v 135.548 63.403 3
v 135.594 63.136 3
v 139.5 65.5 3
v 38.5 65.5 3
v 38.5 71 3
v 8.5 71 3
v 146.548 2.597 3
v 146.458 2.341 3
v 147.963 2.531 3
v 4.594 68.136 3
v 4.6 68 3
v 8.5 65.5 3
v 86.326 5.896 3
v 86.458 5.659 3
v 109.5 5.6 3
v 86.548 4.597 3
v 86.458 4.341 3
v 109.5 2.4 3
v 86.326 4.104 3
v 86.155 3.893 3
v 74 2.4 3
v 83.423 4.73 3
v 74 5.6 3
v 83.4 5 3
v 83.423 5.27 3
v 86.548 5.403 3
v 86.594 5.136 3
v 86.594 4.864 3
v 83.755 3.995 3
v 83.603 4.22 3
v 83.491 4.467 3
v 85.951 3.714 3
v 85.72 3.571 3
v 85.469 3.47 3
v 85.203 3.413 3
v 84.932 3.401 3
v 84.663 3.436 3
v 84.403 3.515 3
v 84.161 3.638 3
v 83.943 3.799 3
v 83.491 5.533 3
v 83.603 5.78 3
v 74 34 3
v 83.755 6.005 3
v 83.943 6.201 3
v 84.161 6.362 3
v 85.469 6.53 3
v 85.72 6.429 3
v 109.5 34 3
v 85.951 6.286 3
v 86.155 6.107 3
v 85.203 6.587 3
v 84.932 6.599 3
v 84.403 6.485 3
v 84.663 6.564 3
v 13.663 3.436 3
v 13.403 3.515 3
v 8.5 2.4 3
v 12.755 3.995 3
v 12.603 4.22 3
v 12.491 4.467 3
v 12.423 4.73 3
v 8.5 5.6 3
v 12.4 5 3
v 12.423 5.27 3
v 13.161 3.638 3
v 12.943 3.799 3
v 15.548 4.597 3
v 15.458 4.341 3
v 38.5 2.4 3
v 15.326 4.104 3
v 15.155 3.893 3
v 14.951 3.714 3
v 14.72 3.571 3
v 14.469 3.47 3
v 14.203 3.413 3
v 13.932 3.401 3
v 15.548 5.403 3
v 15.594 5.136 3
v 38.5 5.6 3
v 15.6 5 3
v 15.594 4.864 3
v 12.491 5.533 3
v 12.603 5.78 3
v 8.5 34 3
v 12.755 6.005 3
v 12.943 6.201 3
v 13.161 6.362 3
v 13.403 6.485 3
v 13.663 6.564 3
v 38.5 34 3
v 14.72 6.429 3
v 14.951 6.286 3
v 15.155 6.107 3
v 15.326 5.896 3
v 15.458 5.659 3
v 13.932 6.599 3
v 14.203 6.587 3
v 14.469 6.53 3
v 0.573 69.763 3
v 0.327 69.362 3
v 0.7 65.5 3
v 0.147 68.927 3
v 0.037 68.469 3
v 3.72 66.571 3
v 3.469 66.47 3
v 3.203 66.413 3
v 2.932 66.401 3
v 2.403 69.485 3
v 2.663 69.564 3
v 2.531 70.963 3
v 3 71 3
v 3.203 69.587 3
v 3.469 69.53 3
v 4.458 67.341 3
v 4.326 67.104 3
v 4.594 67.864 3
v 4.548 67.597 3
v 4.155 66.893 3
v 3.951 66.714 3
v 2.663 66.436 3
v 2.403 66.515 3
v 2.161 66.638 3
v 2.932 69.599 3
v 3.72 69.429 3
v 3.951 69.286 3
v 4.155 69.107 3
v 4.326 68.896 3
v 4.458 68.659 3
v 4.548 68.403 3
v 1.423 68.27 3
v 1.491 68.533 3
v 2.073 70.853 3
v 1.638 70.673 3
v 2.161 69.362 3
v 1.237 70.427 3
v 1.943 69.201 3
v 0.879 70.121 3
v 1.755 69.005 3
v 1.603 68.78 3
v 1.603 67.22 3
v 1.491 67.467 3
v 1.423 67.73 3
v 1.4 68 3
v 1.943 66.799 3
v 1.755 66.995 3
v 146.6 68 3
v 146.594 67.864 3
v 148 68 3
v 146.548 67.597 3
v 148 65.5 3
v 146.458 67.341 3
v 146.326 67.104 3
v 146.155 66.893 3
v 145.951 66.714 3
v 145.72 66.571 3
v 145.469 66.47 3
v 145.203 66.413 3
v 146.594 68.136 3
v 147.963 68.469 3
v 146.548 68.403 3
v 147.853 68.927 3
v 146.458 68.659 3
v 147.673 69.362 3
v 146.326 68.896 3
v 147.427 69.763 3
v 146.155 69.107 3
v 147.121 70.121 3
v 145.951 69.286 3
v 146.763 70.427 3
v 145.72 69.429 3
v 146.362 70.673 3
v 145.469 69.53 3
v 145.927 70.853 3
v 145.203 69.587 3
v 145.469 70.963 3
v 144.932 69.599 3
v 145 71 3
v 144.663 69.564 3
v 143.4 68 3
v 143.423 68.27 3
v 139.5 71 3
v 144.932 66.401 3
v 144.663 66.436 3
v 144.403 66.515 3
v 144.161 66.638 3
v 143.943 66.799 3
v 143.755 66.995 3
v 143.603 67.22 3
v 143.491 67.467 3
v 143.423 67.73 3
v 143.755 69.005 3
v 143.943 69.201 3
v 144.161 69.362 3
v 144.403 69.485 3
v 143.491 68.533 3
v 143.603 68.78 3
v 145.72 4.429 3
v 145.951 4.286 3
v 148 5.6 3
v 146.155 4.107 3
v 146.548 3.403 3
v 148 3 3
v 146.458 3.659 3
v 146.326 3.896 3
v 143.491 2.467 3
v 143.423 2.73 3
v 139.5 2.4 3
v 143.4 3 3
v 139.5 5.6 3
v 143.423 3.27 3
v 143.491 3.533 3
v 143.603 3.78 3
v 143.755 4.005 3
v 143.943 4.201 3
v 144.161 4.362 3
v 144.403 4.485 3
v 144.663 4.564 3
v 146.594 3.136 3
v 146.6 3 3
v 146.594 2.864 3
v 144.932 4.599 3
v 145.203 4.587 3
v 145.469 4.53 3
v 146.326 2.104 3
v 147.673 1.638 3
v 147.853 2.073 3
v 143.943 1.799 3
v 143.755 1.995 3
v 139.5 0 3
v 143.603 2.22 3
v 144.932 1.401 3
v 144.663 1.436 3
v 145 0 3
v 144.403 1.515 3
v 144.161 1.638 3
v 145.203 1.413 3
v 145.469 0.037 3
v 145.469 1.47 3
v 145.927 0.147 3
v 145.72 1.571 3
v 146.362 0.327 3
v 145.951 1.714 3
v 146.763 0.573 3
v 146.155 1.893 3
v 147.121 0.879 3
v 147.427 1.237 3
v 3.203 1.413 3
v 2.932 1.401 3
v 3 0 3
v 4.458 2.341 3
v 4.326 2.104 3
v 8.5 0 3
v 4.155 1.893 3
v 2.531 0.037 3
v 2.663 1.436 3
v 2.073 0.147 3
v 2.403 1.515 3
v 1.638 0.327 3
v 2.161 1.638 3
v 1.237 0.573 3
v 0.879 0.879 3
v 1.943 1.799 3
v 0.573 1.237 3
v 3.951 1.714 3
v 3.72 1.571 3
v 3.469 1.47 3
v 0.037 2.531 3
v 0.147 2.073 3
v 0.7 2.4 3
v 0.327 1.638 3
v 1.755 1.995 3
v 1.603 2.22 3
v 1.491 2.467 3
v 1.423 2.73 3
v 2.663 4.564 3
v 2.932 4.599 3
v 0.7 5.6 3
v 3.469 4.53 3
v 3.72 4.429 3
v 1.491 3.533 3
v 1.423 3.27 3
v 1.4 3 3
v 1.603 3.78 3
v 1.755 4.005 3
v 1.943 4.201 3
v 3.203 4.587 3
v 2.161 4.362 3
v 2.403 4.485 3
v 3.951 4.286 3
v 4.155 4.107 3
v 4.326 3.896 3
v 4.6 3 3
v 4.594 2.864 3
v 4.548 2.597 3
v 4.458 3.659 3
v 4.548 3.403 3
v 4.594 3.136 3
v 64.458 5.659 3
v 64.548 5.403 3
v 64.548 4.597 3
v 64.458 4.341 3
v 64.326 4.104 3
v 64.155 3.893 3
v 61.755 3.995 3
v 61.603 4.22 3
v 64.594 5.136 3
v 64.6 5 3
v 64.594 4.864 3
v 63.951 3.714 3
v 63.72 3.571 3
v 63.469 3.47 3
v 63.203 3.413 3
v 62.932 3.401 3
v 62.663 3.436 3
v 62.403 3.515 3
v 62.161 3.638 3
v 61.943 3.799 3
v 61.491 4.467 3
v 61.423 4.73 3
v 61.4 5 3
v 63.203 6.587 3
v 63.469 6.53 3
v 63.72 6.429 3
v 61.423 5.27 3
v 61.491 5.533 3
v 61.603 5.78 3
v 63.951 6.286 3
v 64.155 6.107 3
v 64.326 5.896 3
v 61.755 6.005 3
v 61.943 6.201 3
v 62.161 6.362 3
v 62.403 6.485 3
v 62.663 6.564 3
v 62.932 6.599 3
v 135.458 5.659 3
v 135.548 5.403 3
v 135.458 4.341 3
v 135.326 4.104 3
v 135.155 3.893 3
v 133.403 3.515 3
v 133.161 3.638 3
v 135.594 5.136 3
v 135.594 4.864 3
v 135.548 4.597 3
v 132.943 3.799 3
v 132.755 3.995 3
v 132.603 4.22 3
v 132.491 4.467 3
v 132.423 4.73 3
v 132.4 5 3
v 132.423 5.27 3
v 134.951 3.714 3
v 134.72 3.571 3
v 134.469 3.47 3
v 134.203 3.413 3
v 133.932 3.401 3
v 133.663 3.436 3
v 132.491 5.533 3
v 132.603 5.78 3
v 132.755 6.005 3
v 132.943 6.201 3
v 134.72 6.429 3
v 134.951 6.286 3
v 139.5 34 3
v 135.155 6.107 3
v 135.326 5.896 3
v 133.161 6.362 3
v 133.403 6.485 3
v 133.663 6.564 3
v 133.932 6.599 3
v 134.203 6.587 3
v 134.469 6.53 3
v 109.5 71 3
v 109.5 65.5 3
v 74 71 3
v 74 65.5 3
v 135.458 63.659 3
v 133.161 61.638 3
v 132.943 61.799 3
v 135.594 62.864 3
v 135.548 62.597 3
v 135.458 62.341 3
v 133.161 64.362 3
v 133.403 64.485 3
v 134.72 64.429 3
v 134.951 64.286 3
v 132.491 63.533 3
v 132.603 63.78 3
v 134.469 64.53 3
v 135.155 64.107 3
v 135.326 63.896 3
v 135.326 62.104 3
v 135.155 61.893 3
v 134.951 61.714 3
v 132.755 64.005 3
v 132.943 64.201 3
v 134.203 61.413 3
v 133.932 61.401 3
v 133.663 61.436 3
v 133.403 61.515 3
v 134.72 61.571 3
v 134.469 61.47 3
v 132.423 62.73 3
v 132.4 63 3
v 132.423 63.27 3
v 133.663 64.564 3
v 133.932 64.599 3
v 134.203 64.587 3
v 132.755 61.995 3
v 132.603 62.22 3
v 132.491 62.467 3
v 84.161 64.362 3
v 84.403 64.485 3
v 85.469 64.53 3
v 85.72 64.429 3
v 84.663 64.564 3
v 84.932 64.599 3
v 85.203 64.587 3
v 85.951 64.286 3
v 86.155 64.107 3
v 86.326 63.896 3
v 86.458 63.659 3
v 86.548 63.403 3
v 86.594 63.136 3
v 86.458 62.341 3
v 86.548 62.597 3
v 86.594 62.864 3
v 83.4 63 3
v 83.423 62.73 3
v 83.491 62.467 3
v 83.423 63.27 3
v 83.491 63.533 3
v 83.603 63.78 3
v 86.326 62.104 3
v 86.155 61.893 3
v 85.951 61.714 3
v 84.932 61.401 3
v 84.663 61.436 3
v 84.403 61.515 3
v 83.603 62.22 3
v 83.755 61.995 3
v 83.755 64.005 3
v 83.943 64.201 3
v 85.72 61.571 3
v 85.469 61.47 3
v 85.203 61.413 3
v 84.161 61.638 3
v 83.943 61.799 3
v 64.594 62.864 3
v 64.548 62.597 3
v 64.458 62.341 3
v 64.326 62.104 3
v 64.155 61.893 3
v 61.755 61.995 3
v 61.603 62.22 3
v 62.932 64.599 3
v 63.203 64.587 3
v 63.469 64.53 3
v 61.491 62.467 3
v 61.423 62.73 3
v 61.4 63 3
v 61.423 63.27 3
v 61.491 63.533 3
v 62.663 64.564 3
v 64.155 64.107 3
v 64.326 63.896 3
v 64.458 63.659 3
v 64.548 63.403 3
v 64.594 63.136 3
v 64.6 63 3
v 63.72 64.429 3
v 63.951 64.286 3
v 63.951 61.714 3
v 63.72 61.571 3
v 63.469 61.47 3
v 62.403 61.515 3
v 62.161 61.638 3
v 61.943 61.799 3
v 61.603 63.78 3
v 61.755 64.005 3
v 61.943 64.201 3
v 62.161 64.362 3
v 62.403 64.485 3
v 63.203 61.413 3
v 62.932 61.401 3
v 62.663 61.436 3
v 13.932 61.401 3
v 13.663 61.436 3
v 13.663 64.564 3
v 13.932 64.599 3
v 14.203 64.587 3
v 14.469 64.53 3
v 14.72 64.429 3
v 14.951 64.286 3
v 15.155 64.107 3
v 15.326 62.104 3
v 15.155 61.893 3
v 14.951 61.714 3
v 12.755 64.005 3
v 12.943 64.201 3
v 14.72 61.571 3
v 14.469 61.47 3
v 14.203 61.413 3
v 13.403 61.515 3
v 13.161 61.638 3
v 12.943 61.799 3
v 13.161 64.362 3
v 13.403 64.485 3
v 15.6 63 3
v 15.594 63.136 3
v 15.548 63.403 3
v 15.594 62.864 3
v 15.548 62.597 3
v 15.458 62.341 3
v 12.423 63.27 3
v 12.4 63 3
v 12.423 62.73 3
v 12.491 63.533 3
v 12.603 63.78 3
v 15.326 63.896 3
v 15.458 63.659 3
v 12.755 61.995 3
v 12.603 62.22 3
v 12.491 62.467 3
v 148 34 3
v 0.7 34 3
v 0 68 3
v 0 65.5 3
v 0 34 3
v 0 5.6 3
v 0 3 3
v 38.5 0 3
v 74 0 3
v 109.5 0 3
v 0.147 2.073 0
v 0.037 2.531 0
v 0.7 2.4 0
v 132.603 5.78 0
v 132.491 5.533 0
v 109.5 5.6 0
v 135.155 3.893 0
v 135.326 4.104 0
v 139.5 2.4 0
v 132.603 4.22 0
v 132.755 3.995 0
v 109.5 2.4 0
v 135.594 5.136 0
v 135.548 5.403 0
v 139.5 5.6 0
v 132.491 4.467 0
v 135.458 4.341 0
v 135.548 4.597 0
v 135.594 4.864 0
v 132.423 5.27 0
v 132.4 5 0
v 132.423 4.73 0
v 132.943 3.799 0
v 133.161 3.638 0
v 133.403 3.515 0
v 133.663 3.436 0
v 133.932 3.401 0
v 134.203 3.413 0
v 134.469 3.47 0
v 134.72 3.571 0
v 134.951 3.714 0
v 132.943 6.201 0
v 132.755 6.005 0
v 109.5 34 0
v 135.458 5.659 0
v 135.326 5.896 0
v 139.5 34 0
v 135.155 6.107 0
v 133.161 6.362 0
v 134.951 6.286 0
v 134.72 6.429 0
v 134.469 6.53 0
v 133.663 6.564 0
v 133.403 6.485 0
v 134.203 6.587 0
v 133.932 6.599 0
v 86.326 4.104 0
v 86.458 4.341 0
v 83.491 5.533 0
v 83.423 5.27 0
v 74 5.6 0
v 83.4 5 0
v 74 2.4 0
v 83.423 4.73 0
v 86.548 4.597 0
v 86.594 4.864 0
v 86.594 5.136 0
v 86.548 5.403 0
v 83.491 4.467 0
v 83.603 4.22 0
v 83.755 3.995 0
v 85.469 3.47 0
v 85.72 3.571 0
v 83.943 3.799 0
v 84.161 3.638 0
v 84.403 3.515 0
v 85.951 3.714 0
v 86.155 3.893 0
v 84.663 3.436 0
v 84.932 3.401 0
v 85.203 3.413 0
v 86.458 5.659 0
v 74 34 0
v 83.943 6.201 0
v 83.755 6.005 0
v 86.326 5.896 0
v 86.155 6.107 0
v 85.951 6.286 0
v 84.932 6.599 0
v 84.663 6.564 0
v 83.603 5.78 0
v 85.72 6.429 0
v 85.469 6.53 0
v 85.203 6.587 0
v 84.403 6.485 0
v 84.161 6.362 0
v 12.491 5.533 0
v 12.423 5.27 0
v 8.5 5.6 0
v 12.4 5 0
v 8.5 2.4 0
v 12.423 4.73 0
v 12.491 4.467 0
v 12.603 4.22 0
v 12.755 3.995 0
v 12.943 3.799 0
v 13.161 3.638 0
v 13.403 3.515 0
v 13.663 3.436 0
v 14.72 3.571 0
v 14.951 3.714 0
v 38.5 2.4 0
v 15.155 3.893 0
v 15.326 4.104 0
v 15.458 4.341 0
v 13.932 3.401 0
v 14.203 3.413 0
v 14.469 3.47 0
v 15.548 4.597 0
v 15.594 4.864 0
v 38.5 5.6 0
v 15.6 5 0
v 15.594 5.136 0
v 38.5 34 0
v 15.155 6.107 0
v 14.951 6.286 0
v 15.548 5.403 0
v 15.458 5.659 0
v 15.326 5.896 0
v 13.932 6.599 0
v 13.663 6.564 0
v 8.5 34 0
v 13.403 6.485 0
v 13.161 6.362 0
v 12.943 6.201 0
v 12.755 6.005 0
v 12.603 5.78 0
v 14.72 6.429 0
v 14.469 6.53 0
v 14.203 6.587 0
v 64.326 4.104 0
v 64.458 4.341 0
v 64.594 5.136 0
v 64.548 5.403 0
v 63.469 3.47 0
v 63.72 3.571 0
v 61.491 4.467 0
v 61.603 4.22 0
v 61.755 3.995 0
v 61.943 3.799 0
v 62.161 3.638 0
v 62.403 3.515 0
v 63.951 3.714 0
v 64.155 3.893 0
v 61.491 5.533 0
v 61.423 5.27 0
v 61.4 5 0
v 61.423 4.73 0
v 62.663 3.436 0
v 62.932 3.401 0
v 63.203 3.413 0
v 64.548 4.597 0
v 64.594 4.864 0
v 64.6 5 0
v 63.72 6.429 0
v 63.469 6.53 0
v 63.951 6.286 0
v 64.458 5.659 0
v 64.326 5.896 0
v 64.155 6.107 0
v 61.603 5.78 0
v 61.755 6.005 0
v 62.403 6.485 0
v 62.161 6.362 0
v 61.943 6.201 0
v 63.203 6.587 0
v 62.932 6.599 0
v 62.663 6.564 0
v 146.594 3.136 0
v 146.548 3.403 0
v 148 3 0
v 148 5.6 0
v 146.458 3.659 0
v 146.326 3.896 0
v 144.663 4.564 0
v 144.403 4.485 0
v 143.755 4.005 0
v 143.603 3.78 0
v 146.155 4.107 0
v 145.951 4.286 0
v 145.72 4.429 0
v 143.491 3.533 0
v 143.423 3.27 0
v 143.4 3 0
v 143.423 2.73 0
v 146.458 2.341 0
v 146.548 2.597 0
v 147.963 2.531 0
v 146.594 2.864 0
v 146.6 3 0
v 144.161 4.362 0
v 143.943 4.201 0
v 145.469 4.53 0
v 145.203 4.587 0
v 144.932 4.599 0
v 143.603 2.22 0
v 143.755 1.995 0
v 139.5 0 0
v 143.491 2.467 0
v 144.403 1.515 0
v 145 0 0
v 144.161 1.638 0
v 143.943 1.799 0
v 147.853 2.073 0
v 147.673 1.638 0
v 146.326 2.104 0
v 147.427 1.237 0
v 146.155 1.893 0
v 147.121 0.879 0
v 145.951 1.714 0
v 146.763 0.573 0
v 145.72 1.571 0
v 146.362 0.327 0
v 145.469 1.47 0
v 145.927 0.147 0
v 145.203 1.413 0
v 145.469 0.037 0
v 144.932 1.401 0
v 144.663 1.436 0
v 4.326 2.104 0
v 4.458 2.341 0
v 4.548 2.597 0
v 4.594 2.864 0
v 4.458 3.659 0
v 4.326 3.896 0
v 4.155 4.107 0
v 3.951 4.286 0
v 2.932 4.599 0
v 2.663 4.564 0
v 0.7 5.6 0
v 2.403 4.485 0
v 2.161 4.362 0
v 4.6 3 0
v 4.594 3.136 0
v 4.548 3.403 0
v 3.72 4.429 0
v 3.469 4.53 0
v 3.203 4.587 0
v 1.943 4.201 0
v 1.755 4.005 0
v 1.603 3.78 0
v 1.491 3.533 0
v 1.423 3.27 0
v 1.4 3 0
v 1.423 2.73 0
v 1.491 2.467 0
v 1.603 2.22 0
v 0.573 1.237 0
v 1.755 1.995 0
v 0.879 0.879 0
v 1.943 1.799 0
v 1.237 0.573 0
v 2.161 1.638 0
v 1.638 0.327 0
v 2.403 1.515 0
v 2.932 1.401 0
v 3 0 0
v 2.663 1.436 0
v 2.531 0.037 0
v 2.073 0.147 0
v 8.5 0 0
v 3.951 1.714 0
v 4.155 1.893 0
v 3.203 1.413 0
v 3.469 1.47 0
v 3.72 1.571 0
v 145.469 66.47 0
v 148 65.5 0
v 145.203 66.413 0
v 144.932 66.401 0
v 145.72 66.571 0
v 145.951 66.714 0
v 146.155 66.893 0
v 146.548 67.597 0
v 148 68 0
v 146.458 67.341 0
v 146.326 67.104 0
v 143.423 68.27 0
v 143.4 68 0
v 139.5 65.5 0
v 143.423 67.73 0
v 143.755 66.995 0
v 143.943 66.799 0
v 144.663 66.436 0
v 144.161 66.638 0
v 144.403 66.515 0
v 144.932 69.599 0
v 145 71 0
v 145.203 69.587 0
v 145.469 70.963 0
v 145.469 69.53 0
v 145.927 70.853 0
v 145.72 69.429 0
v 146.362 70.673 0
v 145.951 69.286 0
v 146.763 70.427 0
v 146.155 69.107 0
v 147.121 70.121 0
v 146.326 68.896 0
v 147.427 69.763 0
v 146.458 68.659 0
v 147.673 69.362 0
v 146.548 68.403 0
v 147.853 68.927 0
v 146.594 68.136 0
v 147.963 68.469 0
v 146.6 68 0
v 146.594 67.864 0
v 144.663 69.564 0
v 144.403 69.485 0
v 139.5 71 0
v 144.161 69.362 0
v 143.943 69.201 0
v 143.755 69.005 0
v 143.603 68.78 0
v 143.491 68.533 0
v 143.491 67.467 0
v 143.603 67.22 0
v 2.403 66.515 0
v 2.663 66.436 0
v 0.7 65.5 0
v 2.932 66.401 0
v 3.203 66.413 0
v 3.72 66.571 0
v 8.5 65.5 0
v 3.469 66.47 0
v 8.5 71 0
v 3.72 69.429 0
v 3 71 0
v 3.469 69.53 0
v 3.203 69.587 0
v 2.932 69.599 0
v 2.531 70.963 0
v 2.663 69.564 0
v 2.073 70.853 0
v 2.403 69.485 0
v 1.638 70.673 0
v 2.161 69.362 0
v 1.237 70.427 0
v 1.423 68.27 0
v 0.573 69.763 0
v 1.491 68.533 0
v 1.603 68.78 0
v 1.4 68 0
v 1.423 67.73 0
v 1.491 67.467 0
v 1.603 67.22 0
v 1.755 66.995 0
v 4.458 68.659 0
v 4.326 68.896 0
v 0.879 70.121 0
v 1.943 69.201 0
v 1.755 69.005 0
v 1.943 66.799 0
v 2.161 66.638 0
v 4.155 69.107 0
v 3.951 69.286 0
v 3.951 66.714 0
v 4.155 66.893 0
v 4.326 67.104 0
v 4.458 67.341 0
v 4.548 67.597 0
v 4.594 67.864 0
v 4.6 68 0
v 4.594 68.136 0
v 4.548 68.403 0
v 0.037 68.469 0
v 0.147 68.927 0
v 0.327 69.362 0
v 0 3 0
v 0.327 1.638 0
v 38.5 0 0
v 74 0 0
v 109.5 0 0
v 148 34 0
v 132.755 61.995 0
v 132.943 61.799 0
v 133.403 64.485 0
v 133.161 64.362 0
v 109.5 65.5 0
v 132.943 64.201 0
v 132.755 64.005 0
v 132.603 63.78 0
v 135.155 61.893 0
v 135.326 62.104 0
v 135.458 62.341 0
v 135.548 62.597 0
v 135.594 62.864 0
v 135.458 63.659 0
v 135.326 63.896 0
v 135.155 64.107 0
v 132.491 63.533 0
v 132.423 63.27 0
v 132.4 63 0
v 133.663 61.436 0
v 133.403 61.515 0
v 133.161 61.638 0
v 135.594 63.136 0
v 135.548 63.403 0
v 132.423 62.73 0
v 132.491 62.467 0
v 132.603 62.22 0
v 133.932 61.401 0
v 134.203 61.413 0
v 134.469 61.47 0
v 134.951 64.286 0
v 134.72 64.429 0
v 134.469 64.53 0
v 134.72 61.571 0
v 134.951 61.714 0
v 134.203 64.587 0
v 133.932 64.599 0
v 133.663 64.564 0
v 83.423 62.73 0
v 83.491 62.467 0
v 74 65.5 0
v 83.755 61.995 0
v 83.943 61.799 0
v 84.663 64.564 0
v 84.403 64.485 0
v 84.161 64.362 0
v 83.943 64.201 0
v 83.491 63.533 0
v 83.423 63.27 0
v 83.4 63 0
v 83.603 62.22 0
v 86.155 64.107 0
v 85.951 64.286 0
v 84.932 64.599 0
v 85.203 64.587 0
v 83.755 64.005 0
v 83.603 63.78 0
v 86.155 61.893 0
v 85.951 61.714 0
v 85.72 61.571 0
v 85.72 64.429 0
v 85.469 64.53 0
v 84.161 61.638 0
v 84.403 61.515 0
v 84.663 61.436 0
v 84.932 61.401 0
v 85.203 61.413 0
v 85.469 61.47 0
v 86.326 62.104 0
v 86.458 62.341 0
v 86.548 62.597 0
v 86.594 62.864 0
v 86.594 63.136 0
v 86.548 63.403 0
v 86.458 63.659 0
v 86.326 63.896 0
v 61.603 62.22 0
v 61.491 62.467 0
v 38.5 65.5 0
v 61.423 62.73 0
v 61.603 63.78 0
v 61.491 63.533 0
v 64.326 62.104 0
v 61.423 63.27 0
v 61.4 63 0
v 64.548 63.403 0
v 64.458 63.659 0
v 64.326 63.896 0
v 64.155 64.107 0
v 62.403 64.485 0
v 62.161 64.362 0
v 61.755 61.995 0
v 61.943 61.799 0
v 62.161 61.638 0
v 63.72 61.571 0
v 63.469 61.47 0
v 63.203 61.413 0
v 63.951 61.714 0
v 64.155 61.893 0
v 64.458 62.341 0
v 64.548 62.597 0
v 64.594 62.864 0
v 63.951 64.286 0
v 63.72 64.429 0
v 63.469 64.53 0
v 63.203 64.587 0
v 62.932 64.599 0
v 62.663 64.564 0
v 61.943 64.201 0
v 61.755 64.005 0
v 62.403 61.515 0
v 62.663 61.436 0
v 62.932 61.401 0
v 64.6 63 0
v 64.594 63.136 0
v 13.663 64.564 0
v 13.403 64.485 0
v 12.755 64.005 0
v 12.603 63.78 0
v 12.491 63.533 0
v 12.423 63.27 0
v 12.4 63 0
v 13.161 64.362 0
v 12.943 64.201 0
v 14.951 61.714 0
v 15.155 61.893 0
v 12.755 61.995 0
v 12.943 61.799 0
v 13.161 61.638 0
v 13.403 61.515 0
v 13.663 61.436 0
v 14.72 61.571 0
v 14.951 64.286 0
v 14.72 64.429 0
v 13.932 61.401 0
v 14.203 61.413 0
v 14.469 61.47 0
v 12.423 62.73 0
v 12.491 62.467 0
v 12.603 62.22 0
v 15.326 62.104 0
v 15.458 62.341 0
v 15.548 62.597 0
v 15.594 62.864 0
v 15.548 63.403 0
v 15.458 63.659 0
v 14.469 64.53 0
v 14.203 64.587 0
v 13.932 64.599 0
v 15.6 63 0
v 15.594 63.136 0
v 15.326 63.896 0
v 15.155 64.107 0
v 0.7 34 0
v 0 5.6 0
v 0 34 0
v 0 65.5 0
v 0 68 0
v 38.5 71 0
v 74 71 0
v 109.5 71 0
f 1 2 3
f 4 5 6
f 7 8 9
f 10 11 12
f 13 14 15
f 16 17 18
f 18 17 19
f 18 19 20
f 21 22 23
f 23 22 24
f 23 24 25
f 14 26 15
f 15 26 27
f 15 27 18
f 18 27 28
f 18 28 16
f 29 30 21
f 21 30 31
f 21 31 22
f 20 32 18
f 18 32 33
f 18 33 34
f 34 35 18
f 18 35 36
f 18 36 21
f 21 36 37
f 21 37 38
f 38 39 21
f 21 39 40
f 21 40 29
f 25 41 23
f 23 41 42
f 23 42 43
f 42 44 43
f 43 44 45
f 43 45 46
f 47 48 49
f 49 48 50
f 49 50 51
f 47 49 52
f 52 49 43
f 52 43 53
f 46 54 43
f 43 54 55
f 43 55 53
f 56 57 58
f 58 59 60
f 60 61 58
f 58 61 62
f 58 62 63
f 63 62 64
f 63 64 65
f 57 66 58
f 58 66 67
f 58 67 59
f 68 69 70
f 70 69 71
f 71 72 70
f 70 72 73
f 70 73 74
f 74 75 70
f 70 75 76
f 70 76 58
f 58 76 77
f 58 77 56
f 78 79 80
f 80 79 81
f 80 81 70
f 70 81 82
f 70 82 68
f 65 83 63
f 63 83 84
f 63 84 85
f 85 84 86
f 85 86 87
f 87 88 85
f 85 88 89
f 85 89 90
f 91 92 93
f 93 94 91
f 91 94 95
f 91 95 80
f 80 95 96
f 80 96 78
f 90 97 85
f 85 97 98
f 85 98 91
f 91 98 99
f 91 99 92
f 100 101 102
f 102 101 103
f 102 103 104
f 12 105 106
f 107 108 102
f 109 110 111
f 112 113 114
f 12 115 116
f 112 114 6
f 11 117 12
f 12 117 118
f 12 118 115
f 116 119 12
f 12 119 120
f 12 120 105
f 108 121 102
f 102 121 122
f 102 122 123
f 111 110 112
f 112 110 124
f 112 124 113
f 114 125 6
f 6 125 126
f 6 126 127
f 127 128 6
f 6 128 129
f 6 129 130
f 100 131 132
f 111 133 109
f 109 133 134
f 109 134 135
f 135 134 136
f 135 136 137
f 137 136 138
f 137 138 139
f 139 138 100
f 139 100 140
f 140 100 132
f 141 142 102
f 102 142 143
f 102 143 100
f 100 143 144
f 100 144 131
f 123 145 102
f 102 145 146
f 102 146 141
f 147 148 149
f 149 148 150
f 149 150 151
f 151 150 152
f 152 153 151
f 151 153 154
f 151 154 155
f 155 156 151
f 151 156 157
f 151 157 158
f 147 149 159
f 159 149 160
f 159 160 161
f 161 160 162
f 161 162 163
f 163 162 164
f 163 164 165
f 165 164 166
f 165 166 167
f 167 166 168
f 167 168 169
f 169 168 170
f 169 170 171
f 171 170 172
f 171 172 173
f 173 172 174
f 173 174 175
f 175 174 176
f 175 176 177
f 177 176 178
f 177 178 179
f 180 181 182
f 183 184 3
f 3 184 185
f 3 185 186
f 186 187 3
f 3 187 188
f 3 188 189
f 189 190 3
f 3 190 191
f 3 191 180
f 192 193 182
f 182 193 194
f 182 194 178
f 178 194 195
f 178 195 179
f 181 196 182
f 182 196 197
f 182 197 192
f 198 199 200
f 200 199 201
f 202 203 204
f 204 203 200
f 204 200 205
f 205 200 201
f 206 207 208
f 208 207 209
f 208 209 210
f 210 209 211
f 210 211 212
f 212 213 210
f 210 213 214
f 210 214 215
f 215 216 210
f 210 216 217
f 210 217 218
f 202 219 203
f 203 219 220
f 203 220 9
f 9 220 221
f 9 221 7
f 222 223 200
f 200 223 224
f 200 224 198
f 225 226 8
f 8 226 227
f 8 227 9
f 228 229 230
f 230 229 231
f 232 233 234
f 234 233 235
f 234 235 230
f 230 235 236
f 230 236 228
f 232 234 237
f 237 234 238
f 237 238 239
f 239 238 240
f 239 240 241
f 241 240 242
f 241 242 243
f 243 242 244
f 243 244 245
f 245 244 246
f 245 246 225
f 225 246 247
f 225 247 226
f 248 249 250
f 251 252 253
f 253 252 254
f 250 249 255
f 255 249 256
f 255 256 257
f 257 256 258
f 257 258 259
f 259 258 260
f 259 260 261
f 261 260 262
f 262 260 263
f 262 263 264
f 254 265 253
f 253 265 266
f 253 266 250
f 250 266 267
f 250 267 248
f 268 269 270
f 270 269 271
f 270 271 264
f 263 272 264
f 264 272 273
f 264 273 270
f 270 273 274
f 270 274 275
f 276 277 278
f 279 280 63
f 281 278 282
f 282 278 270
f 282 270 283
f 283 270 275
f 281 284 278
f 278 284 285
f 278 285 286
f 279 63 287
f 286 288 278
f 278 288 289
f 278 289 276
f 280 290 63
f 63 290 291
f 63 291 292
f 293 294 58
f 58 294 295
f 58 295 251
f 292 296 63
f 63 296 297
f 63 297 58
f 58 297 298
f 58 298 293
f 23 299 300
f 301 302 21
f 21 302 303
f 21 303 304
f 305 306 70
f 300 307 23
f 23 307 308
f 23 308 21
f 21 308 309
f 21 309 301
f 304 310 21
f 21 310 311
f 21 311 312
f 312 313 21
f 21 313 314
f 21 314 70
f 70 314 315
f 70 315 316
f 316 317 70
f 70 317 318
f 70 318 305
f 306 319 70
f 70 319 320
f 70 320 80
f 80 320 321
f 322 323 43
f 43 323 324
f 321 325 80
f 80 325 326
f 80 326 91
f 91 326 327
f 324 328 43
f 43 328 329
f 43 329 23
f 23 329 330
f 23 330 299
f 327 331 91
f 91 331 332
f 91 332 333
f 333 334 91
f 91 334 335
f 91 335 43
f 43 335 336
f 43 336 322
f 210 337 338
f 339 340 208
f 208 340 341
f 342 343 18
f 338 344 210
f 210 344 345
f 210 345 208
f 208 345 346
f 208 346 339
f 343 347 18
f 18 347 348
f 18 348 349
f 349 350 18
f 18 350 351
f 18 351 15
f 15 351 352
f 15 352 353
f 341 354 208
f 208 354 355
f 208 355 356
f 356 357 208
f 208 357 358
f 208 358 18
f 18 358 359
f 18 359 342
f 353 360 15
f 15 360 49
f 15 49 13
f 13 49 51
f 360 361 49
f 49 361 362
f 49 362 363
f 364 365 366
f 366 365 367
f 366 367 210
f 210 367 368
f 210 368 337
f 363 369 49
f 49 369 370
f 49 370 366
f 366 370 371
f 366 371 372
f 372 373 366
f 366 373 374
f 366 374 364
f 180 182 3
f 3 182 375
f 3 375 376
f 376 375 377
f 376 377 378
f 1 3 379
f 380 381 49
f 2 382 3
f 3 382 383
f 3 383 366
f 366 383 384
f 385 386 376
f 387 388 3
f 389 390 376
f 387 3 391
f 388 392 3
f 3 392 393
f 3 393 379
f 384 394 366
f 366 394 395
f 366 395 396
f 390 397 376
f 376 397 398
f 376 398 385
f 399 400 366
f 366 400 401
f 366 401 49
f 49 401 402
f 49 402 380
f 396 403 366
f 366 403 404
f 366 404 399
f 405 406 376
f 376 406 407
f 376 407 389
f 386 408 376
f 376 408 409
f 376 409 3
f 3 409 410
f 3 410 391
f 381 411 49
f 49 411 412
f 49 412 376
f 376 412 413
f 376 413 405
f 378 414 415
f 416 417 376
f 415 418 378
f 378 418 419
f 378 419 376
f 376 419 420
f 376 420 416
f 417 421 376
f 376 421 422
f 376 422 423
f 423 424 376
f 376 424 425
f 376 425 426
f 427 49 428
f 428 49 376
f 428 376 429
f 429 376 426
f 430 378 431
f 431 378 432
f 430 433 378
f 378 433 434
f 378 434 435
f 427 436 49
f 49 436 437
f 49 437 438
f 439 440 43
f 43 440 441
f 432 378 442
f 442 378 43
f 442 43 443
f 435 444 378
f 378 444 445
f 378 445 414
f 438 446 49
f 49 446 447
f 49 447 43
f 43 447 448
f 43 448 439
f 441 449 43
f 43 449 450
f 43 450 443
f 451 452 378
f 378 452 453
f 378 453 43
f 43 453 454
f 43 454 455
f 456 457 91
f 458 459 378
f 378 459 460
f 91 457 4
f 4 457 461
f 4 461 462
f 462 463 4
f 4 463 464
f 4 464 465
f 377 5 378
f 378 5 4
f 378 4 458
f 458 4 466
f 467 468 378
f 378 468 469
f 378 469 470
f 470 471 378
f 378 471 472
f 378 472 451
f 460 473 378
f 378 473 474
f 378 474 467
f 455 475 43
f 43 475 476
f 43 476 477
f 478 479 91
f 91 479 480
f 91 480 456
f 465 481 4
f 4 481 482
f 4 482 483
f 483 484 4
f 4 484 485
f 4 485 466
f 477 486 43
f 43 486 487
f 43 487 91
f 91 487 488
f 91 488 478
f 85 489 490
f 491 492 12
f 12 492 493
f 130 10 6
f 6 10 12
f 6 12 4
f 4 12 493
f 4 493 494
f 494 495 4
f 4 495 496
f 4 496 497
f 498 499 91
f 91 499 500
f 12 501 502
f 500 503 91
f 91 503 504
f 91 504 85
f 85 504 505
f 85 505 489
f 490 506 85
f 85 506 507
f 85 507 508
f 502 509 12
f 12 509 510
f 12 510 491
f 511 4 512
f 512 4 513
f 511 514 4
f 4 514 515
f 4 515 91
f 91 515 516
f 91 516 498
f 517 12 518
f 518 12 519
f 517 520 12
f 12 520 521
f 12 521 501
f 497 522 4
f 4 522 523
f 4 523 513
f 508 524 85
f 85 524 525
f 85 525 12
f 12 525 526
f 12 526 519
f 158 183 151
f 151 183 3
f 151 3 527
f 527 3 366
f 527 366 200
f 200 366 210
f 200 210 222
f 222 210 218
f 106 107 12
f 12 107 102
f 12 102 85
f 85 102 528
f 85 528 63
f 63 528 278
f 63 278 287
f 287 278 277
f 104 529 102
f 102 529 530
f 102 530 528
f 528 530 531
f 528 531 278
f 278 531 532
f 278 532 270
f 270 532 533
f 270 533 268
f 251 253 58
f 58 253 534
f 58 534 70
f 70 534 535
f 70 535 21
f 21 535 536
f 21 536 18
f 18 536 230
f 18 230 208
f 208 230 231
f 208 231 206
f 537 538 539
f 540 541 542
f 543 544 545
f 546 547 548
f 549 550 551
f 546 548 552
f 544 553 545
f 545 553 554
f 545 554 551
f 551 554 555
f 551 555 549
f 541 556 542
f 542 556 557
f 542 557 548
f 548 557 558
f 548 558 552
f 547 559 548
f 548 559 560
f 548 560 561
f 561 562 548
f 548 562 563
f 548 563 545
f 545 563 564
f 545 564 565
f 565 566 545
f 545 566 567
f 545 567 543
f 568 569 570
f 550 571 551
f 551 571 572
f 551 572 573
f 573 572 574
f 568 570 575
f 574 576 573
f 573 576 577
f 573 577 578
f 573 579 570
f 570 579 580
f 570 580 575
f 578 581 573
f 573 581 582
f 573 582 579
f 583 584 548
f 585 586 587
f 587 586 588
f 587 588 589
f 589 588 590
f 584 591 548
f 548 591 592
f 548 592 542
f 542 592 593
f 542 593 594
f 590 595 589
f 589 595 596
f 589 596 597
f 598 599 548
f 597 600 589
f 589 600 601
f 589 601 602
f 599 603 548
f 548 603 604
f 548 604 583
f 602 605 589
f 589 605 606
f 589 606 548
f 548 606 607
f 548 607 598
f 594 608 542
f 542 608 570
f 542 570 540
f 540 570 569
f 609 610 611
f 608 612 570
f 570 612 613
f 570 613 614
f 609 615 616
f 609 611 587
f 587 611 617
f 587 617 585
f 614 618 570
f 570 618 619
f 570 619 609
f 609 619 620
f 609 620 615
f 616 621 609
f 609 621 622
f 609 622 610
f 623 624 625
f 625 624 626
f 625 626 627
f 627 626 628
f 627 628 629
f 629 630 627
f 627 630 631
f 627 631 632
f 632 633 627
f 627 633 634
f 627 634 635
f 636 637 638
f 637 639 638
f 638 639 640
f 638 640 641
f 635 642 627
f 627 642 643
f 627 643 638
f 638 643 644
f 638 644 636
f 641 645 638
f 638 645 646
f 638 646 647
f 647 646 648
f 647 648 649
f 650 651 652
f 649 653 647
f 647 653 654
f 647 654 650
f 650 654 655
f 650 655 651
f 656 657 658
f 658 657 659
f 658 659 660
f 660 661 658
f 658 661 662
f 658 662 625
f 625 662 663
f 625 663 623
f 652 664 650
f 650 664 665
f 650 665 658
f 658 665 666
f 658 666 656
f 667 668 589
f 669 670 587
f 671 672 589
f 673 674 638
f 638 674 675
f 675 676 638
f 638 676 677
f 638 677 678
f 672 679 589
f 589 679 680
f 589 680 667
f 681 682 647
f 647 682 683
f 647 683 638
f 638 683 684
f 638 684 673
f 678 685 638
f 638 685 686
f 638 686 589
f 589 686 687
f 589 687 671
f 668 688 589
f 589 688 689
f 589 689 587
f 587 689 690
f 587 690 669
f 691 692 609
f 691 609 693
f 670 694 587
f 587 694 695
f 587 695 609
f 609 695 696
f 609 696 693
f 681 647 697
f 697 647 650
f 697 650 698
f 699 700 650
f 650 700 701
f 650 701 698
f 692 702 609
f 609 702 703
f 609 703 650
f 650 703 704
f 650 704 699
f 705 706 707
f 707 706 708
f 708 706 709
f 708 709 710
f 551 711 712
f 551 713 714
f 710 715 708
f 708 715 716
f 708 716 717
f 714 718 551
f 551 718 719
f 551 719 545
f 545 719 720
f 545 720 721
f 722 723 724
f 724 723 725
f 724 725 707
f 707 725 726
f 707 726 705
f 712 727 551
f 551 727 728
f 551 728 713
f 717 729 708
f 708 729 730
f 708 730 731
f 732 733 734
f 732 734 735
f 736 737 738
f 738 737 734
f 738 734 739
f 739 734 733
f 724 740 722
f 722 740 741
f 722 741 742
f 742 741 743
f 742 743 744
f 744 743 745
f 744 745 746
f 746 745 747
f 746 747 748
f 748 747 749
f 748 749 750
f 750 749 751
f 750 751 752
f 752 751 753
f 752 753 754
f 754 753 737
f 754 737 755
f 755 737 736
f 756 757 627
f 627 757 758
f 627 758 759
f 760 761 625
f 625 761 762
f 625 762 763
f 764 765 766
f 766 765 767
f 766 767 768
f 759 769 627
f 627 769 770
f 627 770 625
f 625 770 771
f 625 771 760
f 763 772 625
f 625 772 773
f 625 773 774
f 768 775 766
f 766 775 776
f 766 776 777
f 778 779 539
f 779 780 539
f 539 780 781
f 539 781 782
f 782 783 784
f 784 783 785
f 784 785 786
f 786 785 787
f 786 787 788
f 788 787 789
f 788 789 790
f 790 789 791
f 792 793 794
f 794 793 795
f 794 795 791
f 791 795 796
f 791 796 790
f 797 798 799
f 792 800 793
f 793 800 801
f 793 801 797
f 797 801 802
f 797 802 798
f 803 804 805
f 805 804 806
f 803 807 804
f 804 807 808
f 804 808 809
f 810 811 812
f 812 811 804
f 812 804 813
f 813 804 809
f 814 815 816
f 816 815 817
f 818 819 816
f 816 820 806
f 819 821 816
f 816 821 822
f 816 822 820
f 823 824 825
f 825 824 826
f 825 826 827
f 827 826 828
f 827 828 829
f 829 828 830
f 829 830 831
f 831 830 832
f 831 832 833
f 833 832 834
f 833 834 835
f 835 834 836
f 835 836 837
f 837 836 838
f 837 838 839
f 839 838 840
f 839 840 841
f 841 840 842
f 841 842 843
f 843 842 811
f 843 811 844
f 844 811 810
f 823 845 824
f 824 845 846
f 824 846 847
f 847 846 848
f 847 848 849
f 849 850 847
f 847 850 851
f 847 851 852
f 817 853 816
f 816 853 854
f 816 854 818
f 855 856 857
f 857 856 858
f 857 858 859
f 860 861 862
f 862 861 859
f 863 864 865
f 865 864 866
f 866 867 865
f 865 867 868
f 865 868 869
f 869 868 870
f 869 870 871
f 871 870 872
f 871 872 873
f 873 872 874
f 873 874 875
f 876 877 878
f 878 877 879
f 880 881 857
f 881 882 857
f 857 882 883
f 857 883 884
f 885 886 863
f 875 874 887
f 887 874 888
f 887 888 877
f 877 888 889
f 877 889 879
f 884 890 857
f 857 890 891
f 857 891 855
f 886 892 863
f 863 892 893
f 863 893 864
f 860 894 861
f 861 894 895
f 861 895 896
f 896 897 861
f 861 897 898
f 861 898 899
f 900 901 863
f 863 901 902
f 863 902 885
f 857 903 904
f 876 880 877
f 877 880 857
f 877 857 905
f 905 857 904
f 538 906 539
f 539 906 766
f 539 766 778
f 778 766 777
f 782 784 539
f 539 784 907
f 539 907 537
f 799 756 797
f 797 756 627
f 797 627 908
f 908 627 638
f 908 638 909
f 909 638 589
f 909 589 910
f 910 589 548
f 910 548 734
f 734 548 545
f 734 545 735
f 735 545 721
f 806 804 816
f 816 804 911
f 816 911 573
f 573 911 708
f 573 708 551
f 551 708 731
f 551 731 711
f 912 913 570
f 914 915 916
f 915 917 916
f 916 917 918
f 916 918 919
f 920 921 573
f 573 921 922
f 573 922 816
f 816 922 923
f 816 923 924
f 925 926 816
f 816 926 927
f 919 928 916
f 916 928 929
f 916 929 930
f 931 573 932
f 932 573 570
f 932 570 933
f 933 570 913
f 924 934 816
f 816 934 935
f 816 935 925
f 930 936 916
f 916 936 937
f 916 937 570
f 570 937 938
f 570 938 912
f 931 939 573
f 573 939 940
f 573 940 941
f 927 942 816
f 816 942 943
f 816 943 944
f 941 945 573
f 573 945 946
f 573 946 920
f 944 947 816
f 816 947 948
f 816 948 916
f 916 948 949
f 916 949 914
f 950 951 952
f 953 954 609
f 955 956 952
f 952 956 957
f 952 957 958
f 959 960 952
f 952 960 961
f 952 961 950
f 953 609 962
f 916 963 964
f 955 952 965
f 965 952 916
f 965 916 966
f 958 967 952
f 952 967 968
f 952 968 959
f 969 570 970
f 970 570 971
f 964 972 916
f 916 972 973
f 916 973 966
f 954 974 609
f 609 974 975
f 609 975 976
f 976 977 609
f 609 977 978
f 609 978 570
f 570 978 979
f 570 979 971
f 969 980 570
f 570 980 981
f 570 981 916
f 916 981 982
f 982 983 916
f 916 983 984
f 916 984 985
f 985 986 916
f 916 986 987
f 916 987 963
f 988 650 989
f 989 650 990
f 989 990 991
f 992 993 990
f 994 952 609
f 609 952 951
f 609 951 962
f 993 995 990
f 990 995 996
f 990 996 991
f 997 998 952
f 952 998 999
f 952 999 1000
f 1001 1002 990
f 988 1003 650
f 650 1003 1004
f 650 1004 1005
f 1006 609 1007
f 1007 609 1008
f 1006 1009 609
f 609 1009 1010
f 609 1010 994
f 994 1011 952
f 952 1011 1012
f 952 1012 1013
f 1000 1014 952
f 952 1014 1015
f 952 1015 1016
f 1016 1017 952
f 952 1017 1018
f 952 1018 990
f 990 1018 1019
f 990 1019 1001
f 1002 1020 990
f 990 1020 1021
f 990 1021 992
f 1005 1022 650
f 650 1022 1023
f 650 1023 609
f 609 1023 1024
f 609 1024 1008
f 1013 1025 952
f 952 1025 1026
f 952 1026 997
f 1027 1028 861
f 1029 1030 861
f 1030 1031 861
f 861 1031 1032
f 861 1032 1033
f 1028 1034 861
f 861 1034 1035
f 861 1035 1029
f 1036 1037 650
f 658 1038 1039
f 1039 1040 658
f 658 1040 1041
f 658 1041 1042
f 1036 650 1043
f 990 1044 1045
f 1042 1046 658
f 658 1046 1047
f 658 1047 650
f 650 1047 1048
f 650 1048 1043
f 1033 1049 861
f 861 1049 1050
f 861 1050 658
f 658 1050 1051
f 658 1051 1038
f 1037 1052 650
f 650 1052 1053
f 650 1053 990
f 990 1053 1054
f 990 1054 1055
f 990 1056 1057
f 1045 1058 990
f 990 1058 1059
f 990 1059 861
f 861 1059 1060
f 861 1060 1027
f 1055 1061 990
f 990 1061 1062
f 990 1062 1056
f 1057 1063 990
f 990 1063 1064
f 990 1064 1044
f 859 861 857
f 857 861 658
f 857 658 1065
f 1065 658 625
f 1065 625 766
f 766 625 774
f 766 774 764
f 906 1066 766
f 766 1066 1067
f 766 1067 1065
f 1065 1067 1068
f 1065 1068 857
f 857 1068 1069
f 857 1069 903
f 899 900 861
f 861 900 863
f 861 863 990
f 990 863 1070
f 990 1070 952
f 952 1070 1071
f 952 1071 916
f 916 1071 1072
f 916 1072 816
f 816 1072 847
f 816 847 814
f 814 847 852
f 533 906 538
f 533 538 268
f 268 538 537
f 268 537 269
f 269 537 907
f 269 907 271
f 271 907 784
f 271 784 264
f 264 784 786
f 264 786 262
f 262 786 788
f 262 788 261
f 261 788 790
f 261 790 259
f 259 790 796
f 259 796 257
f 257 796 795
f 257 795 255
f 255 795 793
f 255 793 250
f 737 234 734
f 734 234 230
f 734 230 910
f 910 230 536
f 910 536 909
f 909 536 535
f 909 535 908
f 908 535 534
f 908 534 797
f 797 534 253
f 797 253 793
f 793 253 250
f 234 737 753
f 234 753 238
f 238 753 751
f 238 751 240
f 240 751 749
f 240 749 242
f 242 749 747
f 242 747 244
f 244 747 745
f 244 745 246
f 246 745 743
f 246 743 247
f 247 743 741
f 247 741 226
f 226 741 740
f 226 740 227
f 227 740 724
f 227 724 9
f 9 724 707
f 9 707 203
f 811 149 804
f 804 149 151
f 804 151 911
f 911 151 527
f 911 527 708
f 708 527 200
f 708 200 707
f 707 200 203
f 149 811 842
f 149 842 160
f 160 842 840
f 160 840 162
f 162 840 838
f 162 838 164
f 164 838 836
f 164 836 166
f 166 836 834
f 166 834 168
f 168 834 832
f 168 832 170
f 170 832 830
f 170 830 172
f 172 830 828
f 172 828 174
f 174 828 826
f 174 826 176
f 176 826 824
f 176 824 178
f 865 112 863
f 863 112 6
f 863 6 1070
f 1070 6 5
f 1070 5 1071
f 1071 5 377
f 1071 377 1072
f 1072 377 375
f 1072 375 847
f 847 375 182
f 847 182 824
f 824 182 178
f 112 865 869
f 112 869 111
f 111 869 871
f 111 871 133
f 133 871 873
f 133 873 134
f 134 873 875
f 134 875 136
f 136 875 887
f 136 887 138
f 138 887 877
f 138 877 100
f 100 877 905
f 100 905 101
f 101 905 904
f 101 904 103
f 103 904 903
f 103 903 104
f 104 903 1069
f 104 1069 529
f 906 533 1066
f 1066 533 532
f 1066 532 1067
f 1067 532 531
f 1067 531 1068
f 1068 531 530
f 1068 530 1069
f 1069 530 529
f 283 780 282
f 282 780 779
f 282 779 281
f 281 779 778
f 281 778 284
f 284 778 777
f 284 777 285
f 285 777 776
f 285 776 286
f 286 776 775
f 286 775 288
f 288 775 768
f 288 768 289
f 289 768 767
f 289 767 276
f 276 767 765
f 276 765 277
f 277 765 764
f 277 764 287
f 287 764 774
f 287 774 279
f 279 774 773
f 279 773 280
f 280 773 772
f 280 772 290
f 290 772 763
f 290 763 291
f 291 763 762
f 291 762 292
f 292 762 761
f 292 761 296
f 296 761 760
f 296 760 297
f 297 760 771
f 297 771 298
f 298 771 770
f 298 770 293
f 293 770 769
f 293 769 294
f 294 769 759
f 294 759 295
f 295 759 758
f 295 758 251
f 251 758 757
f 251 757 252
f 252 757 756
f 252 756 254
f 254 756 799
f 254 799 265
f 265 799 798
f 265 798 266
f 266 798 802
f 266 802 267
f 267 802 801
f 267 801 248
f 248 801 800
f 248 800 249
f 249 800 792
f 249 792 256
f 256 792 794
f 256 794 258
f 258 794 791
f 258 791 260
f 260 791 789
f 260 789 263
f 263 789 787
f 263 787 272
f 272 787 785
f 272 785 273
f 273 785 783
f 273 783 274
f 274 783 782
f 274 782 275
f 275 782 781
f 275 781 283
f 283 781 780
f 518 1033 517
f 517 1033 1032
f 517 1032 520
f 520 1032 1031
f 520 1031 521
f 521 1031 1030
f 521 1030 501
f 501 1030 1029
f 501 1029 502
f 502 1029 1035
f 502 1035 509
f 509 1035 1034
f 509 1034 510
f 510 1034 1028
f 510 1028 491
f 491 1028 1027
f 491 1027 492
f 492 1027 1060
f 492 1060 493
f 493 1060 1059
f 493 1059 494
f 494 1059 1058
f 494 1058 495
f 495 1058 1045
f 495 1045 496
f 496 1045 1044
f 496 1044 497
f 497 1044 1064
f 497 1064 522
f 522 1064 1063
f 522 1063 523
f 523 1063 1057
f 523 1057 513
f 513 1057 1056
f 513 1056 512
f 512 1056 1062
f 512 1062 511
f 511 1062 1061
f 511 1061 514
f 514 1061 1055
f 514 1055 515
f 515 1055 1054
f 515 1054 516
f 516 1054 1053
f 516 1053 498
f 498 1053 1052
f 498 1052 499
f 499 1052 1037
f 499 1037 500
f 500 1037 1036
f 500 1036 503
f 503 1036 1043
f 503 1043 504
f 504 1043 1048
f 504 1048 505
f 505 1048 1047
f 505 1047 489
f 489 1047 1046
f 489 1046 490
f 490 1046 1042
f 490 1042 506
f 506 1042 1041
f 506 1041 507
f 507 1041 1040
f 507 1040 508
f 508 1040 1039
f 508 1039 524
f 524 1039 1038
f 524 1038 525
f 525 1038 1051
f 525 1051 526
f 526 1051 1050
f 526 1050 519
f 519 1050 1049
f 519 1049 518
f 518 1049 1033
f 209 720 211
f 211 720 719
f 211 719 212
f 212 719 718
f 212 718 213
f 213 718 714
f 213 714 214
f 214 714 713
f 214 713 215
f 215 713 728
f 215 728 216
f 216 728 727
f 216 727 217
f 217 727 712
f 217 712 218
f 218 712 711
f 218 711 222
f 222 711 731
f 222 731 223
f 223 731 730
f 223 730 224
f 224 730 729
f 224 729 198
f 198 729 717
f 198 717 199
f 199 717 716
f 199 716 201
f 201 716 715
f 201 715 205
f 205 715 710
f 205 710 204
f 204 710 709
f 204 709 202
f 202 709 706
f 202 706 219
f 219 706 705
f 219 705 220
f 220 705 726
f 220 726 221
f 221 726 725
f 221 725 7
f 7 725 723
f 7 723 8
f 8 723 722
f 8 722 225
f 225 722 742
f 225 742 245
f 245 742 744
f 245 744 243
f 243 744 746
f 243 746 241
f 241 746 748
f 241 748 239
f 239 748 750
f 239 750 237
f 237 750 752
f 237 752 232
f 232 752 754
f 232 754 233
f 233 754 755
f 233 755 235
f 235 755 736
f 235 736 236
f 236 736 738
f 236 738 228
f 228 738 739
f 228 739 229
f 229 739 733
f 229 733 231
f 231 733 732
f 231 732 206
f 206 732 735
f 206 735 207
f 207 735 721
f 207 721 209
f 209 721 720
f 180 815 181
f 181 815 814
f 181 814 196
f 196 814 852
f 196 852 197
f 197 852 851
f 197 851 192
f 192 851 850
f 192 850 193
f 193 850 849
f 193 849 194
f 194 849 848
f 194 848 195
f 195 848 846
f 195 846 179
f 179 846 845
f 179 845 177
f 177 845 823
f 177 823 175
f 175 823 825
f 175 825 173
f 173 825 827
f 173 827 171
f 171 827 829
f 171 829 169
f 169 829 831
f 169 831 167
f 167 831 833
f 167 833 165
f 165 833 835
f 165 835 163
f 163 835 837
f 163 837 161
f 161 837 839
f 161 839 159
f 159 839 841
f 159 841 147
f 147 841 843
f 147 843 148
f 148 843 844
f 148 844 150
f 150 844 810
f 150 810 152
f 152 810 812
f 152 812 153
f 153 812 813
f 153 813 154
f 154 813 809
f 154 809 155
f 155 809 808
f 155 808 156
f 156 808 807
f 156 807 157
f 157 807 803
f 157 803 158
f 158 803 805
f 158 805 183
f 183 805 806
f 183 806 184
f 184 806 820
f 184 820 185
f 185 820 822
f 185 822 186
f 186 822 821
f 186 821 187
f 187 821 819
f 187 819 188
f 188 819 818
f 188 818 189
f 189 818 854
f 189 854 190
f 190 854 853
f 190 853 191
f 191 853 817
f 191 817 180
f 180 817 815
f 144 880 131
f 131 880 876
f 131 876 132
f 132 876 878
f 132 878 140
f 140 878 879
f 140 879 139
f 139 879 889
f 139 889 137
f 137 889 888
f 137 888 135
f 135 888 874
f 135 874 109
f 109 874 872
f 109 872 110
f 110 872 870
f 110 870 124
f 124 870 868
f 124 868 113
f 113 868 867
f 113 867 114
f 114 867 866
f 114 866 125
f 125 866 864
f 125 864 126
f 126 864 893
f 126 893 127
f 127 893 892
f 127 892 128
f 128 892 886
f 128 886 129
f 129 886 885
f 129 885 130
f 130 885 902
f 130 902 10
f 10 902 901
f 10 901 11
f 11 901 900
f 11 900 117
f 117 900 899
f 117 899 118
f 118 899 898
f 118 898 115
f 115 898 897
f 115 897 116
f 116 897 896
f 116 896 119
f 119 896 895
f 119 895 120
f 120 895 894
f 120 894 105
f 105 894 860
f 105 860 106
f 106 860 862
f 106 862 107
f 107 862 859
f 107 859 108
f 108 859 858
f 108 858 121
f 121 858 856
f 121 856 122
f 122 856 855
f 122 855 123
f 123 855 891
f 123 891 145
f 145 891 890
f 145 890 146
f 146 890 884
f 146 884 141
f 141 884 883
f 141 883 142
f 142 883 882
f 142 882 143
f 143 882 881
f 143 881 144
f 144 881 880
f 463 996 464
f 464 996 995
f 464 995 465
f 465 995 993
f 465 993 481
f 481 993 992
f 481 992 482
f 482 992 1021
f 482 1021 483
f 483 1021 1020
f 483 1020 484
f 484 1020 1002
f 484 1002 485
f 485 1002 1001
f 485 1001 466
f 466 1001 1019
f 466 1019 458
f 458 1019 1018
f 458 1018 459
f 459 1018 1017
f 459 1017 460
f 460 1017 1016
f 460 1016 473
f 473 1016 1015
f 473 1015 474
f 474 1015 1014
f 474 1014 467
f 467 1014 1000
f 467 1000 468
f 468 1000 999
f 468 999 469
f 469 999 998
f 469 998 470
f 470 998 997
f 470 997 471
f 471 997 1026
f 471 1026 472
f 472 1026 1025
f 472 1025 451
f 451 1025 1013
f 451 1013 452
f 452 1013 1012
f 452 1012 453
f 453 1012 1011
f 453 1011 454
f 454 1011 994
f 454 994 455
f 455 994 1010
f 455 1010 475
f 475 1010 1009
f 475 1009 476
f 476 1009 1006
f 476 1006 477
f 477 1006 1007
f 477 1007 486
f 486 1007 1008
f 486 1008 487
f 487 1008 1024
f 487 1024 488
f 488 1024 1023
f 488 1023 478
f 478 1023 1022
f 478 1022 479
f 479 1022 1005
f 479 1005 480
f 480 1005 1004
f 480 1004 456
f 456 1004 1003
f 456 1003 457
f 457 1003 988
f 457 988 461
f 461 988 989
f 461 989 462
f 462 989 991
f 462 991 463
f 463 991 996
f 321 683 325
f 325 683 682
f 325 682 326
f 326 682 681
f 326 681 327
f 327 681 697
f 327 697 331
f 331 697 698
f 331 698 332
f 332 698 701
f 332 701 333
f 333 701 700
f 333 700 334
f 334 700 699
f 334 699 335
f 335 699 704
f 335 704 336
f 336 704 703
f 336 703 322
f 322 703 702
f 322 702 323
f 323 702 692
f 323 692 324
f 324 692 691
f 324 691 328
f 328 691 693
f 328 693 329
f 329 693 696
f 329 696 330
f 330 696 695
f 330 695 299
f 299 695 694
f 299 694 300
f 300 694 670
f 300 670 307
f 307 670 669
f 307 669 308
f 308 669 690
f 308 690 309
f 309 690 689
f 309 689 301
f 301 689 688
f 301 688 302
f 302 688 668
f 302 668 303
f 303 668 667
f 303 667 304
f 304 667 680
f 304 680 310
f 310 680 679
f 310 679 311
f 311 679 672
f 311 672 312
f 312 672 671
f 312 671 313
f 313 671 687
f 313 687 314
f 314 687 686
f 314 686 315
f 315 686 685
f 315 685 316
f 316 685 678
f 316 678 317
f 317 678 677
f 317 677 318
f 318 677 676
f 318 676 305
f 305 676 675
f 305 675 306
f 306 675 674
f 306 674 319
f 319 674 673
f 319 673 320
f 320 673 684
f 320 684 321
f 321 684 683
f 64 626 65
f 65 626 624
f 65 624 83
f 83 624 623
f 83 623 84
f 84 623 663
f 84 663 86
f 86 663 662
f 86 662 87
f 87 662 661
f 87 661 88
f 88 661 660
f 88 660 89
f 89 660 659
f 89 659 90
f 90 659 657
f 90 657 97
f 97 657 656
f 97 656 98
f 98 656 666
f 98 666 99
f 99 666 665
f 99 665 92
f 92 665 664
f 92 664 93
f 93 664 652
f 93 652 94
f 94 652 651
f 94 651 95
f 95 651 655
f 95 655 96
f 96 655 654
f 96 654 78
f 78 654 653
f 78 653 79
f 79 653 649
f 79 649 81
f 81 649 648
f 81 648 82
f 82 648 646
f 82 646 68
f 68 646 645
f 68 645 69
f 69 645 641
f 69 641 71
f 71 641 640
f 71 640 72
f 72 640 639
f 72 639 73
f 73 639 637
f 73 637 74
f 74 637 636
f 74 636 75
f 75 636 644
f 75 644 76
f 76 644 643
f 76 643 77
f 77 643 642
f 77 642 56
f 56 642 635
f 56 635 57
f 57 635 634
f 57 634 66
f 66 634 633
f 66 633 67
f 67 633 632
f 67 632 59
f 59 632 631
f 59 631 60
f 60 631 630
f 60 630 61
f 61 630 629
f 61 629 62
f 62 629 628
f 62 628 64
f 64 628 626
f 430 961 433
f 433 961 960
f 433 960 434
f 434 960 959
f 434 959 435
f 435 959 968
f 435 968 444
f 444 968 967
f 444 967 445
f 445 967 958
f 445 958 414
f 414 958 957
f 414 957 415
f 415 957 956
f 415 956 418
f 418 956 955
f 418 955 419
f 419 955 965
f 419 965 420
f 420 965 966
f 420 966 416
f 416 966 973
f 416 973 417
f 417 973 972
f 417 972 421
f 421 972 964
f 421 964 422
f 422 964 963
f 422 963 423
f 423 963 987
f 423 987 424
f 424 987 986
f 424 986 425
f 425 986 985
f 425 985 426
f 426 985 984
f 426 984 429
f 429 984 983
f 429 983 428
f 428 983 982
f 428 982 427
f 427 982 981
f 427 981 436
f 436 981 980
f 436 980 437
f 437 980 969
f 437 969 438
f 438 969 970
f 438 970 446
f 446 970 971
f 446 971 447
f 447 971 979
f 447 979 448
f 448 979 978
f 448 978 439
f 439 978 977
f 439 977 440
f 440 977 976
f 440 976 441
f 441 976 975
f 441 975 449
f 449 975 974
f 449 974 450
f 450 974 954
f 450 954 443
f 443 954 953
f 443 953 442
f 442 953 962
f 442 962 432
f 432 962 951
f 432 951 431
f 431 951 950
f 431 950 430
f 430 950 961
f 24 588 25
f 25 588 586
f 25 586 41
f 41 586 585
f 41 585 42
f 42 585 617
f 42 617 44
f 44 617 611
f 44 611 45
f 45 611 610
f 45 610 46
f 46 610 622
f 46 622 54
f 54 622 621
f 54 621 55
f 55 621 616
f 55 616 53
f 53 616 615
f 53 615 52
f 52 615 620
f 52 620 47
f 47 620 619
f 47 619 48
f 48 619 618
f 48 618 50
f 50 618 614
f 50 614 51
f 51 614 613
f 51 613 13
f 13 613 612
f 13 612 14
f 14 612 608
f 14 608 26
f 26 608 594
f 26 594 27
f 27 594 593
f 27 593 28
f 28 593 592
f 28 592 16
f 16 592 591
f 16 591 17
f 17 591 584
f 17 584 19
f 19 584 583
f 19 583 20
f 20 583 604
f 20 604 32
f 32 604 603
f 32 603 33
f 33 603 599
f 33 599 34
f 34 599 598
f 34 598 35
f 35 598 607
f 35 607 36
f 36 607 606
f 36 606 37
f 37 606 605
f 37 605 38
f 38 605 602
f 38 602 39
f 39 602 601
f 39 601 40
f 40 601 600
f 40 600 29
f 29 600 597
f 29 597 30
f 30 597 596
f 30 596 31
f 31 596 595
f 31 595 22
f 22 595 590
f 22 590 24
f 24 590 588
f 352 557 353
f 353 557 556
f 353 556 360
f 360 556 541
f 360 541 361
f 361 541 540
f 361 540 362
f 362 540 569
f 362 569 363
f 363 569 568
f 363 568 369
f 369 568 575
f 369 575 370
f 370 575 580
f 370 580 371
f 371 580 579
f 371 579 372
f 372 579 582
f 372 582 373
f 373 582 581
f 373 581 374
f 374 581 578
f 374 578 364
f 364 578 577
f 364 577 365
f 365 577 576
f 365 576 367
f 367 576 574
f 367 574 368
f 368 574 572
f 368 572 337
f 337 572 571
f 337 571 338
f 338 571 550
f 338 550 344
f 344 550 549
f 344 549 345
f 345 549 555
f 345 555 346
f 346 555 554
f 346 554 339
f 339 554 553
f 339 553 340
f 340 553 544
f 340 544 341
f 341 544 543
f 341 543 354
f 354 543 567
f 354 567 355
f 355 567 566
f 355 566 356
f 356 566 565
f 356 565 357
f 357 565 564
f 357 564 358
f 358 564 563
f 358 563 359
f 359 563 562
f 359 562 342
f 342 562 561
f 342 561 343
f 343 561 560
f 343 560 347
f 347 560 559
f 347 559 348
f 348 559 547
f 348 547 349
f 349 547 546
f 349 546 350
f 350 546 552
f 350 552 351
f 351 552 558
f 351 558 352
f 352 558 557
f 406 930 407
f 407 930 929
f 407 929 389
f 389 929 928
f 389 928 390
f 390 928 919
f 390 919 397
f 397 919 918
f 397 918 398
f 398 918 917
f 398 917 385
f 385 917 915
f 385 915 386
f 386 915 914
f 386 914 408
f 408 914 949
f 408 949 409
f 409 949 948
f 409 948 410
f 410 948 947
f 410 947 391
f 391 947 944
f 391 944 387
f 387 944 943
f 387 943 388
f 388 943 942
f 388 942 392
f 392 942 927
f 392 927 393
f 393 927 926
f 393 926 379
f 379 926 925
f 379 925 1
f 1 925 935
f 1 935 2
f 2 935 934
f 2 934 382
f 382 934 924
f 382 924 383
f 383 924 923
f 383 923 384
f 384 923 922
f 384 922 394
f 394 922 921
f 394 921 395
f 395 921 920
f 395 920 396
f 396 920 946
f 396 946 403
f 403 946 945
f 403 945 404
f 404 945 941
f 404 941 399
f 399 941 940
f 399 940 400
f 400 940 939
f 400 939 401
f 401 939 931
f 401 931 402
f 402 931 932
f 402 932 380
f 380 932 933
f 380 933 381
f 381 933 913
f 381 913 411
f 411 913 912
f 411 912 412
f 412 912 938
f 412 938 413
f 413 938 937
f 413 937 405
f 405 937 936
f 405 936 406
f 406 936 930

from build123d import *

# Parameters (mm, degrees)
SKETCH_1_R      = 1.6
EXTRUDE_1_DEPTH = 3


with BuildPart() as part:
    # 草图1 → 凸台-拉伸1 (new body)
    with BuildSketch(Plane.XY):
        with BuildLine():
            Line((3, 0), (145, 0))
            ThreePointArc((145, 0), (147.121320344, 0.878679656), (148, 3))
            Line((148, 3), (148, 68))
            ThreePointArc((148, 68), (147.121320344, 70.121320344), (145, 71))
            Line((145, 71), (3, 71))
            ThreePointArc((3, 71), (0.878679656, 70.121320344), (0, 68))
            Line((0, 68), (0, 3))
            ThreePointArc((0, 3), (0.878679656, 0.878679656), (3, 0))
        make_face()
        with Locations((3, 3)):
            Circle(SKETCH_1_R, mode=Mode.SUBTRACT)
        with Locations((145, 3)):
            Circle(SKETCH_1_R, mode=Mode.SUBTRACT)
        with Locations((145, 68)):
            Circle(SKETCH_1_R, mode=Mode.SUBTRACT)
        with Locations((3, 68)):
            Circle(SKETCH_1_R, mode=Mode.SUBTRACT)
        with Locations((14, 63)):
            Circle(SKETCH_1_R, mode=Mode.SUBTRACT)
        with Locations((63, 63)):
            Circle(SKETCH_1_R, mode=Mode.SUBTRACT)
        with Locations((63, 5)):
            Circle(SKETCH_1_R, mode=Mode.SUBTRACT)
        with Locations((14, 5)):
            Circle(SKETCH_1_R, mode=Mode.SUBTRACT)
        with Locations(Location((85, 63, 0), (0, 0, 180))):
            Circle(SKETCH_1_R, mode=Mode.SUBTRACT)
        with Locations(Location((85, 5, 0), (0, 0, 180))):
            Circle(SKETCH_1_R, mode=Mode.SUBTRACT)
        with Locations(Location((134, 5, 0), (0, 0, 180))):
            Circle(SKETCH_1_R, mode=Mode.SUBTRACT)
        with Locations(Location((134, 63, 0), (0, 0, 180))):
            Circle(SKETCH_1_R, mode=Mode.SUBTRACT)
    extrude(amount=EXTRUDE_1_DEPTH)


solid = part.part
